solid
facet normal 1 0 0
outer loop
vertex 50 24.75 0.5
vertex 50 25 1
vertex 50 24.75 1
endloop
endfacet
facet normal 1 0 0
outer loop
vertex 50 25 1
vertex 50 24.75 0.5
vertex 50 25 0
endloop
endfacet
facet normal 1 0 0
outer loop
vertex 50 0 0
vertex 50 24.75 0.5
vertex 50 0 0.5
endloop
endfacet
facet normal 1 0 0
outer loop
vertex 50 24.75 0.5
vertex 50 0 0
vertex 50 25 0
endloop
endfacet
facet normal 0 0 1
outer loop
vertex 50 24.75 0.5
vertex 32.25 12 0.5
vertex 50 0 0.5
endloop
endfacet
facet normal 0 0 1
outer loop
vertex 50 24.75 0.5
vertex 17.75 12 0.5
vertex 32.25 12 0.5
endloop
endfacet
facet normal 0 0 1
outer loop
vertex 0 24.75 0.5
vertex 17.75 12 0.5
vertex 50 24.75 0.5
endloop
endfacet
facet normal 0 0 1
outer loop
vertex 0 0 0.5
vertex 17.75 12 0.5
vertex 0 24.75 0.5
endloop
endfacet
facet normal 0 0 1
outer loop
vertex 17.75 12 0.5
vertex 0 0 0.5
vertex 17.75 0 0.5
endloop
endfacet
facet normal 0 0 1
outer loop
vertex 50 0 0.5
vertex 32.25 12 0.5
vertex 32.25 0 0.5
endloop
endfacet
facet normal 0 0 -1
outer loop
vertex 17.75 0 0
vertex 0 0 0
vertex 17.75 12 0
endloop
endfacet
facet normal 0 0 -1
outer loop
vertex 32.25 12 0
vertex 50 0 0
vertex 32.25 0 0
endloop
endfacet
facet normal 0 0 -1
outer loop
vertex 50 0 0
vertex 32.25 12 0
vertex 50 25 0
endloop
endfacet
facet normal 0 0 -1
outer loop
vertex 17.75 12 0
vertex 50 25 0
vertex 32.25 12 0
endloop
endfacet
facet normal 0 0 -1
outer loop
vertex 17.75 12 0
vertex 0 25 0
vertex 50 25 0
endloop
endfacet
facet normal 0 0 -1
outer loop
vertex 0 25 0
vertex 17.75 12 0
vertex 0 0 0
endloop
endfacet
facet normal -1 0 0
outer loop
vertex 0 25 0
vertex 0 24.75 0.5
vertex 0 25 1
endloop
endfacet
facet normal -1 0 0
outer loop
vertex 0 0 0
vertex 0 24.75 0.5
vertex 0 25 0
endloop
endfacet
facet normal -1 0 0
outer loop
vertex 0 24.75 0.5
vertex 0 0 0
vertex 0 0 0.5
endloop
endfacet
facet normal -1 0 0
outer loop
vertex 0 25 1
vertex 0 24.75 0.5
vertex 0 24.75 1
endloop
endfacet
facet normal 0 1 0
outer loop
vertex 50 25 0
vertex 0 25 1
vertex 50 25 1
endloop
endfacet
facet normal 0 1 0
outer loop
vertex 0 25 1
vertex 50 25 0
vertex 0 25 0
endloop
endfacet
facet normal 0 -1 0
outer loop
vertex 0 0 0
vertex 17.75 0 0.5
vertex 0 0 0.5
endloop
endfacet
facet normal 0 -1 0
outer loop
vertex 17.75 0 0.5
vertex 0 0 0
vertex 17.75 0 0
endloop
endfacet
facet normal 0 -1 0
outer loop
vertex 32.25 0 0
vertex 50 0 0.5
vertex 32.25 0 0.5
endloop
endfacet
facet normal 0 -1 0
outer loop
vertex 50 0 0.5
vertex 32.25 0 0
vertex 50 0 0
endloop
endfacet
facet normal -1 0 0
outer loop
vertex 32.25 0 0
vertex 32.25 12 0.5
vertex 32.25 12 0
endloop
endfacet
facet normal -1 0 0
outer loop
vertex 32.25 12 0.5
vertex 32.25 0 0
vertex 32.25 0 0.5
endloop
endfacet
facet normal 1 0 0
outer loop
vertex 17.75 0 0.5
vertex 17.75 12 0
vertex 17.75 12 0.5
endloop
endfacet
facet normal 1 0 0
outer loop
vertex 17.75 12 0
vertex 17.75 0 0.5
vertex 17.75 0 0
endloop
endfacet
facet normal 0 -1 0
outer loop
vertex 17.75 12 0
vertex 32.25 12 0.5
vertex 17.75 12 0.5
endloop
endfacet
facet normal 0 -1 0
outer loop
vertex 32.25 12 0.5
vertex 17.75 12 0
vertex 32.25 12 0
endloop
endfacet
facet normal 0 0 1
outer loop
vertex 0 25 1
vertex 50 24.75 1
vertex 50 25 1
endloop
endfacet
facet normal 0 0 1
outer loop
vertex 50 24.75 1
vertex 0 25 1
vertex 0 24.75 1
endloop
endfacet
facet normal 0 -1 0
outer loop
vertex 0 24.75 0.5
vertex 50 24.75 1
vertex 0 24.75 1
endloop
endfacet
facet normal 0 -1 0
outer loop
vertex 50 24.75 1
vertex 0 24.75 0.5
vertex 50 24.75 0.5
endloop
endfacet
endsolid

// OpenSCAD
fullW = 50;
fullH = 25;
fulllD = 0.5;

actualW = 30;
actualH = 22;

trackpadW = 14.5;
trackpadH = 9;
trackpadD = 0.5;

tCaseX = (fullW / 2) * -1;
tCaseY = (fullH / 2) * -1;

//translate([tCaseX, tCaseY, 0]) {
//    cube([fullW, fullH, fulllD]);
//}
//
//translate([
//    (trackpadW/2 * -1), (actualH + tCaseY) * -1, 0
//]) {
//    color("Indigo", 1.0) cube([trackpadW, trackpadH, trackpadD]);
//}


trackBoxH = trackpadH + (fullH - actualH);
echo(trackBoxH);
tlTrackBoxX = (fullW / 2) - (trackpadW/2);


union() {
difference() {
    cube([fullW, fullH, fulllD]);

    translate([tlTrackBoxX, 0, 0]) {
        color("Indigo", 1.0)
        cube([trackpadW, trackBoxH, trackpadD]);
    }
}

protectorH = 0.25;
protectorXstart = fullH - protectorH;
translate([0, protectorXstart, 0]) {
    color("Red", 1.0)
    cube([fullW, protectorH, 1]);
}
}
